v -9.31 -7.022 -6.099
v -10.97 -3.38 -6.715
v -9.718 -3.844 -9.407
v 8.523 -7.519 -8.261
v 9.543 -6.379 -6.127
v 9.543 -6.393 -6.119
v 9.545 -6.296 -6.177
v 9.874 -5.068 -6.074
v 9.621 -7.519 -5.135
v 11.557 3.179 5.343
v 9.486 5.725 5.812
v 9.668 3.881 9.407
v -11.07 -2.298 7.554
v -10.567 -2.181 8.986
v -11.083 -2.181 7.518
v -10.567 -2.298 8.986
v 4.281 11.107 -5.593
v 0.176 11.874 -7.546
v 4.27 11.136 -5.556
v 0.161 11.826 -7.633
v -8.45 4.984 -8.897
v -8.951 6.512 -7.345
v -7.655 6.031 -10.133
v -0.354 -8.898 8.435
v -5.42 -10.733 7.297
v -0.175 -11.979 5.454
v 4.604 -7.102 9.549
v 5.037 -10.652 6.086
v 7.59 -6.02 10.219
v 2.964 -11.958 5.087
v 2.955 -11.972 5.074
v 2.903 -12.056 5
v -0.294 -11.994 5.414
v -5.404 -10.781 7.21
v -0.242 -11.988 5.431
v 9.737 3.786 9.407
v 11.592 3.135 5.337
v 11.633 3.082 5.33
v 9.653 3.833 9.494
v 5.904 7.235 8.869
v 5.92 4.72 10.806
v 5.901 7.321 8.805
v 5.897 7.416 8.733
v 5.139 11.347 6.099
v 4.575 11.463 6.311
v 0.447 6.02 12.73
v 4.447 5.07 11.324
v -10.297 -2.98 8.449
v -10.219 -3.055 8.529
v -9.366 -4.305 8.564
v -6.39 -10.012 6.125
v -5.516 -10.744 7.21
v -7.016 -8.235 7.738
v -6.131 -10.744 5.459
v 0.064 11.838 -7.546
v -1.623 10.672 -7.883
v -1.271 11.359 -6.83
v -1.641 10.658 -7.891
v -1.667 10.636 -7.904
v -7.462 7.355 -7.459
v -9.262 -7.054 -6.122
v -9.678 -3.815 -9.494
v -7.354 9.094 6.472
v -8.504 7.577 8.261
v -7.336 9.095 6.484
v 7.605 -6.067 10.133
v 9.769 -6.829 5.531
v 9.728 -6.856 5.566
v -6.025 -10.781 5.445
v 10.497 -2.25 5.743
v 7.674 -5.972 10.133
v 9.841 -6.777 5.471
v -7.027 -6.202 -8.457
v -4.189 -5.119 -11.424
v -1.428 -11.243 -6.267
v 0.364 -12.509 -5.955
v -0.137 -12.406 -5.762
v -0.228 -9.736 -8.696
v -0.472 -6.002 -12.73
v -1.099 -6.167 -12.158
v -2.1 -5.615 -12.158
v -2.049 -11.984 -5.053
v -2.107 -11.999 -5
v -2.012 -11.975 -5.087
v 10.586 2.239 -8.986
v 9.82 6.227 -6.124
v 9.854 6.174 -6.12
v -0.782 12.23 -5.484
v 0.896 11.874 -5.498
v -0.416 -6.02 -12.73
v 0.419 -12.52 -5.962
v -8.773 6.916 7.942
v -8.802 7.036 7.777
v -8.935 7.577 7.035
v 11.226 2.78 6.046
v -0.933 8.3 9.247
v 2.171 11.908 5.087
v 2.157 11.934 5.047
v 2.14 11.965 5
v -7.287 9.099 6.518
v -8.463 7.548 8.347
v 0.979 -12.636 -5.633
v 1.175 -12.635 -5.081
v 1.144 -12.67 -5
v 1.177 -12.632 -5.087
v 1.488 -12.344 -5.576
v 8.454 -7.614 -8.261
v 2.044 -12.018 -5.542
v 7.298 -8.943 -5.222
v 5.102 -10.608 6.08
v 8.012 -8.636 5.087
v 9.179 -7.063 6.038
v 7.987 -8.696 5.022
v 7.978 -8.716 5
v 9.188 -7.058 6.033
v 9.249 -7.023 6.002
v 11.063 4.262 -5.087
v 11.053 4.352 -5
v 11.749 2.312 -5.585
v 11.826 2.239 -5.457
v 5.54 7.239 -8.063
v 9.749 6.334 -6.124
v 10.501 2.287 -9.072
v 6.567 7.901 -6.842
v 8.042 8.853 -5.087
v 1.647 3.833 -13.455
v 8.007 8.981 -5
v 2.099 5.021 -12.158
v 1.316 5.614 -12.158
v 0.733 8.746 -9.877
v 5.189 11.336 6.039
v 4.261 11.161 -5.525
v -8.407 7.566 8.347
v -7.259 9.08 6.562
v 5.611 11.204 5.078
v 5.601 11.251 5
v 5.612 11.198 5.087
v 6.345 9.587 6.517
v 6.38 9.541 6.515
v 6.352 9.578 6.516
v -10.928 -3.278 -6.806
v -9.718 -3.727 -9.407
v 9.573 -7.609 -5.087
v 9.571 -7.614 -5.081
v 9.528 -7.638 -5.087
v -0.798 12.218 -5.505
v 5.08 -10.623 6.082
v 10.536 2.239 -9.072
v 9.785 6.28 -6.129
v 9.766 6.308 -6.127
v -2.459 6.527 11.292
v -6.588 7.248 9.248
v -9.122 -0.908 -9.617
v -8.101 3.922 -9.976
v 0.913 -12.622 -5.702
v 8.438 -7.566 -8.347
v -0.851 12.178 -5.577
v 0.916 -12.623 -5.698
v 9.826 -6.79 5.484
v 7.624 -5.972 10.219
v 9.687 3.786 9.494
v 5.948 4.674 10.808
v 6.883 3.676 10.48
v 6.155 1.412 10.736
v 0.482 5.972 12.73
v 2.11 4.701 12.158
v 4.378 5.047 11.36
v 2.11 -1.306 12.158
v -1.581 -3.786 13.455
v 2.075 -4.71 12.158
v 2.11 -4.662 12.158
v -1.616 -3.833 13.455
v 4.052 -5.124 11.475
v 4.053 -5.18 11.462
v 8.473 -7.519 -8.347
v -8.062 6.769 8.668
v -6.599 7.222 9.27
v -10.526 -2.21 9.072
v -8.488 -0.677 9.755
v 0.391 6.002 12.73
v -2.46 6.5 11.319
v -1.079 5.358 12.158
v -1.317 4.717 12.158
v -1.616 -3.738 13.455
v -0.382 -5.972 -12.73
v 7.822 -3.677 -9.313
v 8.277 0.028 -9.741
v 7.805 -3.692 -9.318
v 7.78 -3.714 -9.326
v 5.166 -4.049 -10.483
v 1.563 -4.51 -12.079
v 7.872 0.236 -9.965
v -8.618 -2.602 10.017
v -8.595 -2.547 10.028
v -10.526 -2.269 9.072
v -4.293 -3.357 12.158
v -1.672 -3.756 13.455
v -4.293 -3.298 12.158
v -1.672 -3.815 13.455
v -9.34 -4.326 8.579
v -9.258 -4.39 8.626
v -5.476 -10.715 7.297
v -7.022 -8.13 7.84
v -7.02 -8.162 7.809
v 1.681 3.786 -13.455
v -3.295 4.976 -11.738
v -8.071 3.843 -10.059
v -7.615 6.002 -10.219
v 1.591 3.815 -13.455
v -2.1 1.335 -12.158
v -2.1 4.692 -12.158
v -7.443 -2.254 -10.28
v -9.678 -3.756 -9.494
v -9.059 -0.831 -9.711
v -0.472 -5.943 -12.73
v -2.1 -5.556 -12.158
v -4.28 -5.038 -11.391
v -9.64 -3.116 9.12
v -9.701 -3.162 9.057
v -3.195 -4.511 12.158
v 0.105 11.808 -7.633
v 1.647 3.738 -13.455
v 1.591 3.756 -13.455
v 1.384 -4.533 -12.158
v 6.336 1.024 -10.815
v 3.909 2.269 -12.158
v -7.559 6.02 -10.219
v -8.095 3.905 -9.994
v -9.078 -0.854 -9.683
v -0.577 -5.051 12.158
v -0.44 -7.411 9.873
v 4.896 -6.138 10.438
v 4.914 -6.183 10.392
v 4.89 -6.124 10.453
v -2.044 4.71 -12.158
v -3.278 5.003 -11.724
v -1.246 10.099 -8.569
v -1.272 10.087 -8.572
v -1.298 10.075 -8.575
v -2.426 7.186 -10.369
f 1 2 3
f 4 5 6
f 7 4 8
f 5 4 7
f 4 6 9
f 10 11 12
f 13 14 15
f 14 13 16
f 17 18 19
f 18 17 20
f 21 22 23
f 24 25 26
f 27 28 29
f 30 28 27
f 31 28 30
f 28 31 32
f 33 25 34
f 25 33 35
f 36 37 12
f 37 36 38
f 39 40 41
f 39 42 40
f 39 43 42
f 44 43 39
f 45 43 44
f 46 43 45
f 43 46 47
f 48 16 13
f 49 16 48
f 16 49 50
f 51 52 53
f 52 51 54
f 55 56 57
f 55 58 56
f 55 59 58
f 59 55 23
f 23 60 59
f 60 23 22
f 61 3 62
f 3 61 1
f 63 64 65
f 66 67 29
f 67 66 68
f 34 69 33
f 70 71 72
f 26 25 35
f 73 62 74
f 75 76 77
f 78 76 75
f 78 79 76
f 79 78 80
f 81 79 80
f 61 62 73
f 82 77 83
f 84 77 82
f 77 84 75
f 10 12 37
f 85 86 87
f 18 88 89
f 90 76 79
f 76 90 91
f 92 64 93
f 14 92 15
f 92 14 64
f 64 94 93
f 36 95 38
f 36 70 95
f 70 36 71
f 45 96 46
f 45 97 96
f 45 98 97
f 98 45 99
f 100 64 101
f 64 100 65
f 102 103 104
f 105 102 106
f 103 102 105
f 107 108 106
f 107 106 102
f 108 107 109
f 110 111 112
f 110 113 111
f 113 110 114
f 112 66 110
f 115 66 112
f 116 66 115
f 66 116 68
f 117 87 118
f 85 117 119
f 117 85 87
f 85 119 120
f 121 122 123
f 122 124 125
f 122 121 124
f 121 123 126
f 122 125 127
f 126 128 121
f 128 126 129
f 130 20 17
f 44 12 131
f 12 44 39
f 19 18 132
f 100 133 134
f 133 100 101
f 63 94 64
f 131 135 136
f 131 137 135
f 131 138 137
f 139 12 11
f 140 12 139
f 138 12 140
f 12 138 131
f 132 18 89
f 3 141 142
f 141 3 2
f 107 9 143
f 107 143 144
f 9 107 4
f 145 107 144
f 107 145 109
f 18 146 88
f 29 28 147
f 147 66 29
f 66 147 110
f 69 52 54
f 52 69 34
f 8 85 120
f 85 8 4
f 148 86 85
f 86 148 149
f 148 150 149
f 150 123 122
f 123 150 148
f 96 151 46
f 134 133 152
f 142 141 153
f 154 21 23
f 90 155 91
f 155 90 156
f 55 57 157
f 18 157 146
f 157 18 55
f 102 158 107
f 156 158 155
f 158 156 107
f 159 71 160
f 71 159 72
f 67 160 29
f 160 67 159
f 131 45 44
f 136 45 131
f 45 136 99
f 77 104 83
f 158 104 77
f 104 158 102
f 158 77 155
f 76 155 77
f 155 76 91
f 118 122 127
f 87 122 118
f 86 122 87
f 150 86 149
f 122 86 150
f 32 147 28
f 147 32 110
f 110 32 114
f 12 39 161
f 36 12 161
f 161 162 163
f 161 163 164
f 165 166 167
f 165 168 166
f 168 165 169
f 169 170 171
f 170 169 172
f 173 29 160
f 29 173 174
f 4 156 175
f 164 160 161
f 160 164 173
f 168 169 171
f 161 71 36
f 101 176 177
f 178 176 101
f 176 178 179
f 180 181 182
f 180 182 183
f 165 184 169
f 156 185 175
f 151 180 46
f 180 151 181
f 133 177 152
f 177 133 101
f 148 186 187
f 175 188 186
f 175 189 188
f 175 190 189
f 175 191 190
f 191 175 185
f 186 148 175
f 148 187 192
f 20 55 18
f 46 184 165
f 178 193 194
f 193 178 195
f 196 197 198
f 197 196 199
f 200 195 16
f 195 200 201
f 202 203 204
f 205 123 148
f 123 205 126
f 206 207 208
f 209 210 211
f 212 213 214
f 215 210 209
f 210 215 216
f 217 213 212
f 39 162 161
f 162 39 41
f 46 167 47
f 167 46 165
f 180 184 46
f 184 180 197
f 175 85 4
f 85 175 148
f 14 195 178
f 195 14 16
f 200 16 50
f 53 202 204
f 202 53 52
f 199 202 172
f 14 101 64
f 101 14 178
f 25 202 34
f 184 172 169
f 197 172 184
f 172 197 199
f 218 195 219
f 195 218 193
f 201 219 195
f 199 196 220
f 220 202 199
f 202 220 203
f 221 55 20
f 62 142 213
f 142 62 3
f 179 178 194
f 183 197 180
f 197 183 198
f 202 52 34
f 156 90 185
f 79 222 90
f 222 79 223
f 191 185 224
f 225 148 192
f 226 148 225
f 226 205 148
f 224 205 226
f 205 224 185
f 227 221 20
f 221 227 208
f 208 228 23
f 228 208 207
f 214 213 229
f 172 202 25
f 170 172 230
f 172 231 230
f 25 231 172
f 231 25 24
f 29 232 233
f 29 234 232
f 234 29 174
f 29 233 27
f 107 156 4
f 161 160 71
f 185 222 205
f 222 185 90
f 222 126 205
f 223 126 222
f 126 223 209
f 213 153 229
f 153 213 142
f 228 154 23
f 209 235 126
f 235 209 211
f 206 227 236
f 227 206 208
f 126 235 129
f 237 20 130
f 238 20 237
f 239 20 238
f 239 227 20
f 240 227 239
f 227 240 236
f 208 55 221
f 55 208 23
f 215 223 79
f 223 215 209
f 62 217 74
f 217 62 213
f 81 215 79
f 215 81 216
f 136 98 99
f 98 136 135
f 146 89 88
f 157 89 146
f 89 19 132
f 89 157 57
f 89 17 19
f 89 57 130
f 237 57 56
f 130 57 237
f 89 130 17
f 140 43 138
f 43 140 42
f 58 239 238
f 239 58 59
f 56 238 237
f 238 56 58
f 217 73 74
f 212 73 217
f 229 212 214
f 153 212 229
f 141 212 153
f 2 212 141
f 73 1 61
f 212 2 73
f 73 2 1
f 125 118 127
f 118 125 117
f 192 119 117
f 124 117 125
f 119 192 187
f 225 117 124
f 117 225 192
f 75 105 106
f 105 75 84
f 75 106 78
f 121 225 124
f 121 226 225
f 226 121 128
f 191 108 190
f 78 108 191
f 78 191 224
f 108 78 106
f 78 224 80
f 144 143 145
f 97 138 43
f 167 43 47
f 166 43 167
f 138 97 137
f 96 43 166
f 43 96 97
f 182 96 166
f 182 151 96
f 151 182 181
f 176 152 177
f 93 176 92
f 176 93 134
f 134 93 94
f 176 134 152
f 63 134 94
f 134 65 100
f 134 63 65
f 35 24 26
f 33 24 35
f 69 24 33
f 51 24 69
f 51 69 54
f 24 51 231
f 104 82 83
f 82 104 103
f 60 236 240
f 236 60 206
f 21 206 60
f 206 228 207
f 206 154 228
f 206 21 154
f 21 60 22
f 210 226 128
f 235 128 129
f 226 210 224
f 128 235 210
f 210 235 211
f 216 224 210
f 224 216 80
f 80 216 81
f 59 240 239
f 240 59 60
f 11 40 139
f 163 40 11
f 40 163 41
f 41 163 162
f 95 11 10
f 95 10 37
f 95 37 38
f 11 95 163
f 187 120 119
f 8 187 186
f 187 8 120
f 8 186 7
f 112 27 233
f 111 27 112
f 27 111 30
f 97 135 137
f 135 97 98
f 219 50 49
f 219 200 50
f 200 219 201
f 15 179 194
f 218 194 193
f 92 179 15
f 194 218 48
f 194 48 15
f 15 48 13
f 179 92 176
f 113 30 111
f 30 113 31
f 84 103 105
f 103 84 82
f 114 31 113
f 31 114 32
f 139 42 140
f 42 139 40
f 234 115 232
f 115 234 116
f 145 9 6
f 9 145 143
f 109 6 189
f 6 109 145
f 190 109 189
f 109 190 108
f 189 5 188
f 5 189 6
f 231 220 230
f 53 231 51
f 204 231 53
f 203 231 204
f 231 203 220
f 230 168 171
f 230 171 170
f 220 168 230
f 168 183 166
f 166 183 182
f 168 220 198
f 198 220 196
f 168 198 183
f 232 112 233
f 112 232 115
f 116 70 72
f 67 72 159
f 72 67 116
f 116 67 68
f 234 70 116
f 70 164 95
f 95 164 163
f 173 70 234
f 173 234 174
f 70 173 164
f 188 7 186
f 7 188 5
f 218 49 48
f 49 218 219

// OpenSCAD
// Auto-generated OpenSCAD file

    inner_points = 10*[[0.5189873908693398, 0.4014612830439682, 1.207106781182594], [-0.6624123844142482, -0.37590257703693897, 1.207106781190501], [-0.4603944268129078, 0.6034792406453087, 1.2071067811886023], [0.3169694332679993, -0.5779205346382793, 1.2071067811844927], [0.07113577095377736, 0.7053068776558797, -1.20710678118789], [0.6208150278663372, -0.13006891473940857, -1.207106781190796], [-0.7642400214415109, 0.15562762074331987, -1.2071067811822989], [-0.21456076452895106, -0.6797481716519684, -1.207106781185205], [0.6618356586062716, 1.0939888076974356, 0.4999999999947038], [0.6618356586000035, 1.0939888076967899, -0.5000000000052962], [1.2115149155188314, 0.2586130153021473, 0.49999999999179784], [1.2115149155125633, 0.25861301530150155, -0.5000000000082021], [-1.3549399090726046, -0.23305430929603127, 0.5000000000082021], [-1.3549399090788727, -0.23305430929667703, -0.49999999999179784], [-0.8052606521600446, -1.0684301016913196, 0.5000000000052962], [-0.8052606521663127, -1.0684301016919653, -0.4999999999947038], [-0.3175461590759757, 1.2960067652987761, 0.5000000000007122], [-0.3175461590822439, 1.2960067652981304, -0.49999999999928774], [1.009496957917491, -0.7207688023801, 0.49999999999369654], [1.009496957911223, -0.7207688023807458, -0.5000000000063035], [-1.1529219514712643, 0.7463275083862161, 0.5000000000063035], [-1.1529219514775324, 0.7463275083855703, -0.49999999999369654], [0.17412116552220275, -1.2704480592926601, 0.49999999999928774], [0.1741211655159346, -1.2704480592933058, -0.5000000000007122]];

    outer_points = 10*[[0.014534033109566136, 1.1778924537288806, -0.7546289886538113], [0.48351692784779204, 1.1778924537288806, 0.5795580463764929], [-0.4019230788858629, 1.3325180477160121, 0.14128082798654307], [0.8999740398432211, 1.0232668597417491, -0.31635177026386146], [-0.8751261135739088, -1.068555647675582, -0.22237332202445173], [0.04545416748665429, -1.2872292597821793, -0.5459684355393317], [-0.5435051284440124, -1.068555647675582, 0.7210393778166502], [0.37707515261655067, -1.2872292597821793, 0.39744426430177016], [-0.7574423490735973, 0.5972358354047242, -1.0132606900126142], [-0.963741811855088, -0.37856222329812717, -0.9407439313439117], [0.16313793198696575, 0.37856222329812717, -1.3368558035274942], [-0.043161530794524894, -0.5972358354047242, -1.2643390448587917], [0.043161530794524894, 0.5972358354047242, 1.2643390448587917], [-0.16313793198696575, -0.37856222329812717, 1.3368558035274942], [0.963741811855088, 0.37856222329812717, 0.9407439313439117], [0.7574423490735973, -0.5972358354047242, 1.0132606900126142], [-1.173899461069026, 0.7518614293918557, -0.11735087337226002], [-1.380198923850517, -0.22393662931099567, -0.04483411470355736], [1.0485779387206207, 0.22393662931099567, -0.8985785851375445], [0.8422784759391297, -0.7518614293918557, -0.8260618264688419], [-0.8422784759391297, 0.7518614293918557, 0.8260618264688419], [-1.0485779387206207, -0.22393662931099567, 0.8985785851375445], [1.380198923850517, 0.22393662931099567, 0.04483411470355736], [1.173899461069026, -0.7518614293918557, 0.11735087337226002]];

    // Convex hull for inner set (I)
    module inner_hull() {
        hull() {
            for (p = inner_points) {
                translate(p) sphere(r=0.1);
            }
        }
    }

    // Convex hull for outer set (O) minus inner hull (O \ I)
    module outer_minus_inner() {
        difference() {
            hull() {
                for (p = outer_points) {
                    translate(p) sphere(r=0.1);
                }
            }
            inner_hull(); // Subtract inner hull
        }
    }

    // Convex hull for outer set (O) minus all translated inner hulls
    module outer_minus_AllTranslationInner() {
        difference() {
            hull() {
                for (p = outer_points) {
                    translate(p) sphere(r=0.1);
                }
            }
            hull() {
                translate([0,0,50]) inner_hull();
                translate([0,0,-50]) inner_hull();
            }; // Subtract translated inner hulls
        }
    }

    // Difference between outer_minus_inner and outer_minus_AllTranslationInner
    module outer_minus_inner_diff() {
        difference() {
            // Outer minus inner
            difference() {
                hull() {
                    for (p = outer_points) {
                        translate(p) sphere(r=0.1);
                    }
                }
                inner_hull();
            }

            // Subtract Outer minus AllTranslationInner
            difference() {
                hull() {
                    for (p = outer_points) {
                        translate(p) sphere(r=0.1);
                    }
                }
                hull() {
                    translate([0,0,50]) inner_hull();
                    translate([0,0,-50]) inner_hull();
                };
            }
        }
    }

    // Rendering all with colors applied
    color([1, 1, 0, 1]) outer_minus_inner_diff(); // Opaque yellow
    
